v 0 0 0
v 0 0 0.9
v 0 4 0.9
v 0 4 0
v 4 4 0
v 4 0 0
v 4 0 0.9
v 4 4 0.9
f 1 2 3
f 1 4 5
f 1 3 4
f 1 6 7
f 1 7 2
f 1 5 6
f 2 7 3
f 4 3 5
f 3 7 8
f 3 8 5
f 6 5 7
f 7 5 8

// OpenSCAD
/* Warning, this is a very basic generator with a lot of approximation 
input data : [VQFN, NWA, 4x4x0.9mm, 16, , A, C04-01110A]
generated by com.zoubworld.electronics.cad.model3d.Basic
Date : Sun Feb 15 10:50:49 CET 2026
*/

//body
color("black")
translate([0,0,0])
cube([4.0,4.0,0.9], center=false);
